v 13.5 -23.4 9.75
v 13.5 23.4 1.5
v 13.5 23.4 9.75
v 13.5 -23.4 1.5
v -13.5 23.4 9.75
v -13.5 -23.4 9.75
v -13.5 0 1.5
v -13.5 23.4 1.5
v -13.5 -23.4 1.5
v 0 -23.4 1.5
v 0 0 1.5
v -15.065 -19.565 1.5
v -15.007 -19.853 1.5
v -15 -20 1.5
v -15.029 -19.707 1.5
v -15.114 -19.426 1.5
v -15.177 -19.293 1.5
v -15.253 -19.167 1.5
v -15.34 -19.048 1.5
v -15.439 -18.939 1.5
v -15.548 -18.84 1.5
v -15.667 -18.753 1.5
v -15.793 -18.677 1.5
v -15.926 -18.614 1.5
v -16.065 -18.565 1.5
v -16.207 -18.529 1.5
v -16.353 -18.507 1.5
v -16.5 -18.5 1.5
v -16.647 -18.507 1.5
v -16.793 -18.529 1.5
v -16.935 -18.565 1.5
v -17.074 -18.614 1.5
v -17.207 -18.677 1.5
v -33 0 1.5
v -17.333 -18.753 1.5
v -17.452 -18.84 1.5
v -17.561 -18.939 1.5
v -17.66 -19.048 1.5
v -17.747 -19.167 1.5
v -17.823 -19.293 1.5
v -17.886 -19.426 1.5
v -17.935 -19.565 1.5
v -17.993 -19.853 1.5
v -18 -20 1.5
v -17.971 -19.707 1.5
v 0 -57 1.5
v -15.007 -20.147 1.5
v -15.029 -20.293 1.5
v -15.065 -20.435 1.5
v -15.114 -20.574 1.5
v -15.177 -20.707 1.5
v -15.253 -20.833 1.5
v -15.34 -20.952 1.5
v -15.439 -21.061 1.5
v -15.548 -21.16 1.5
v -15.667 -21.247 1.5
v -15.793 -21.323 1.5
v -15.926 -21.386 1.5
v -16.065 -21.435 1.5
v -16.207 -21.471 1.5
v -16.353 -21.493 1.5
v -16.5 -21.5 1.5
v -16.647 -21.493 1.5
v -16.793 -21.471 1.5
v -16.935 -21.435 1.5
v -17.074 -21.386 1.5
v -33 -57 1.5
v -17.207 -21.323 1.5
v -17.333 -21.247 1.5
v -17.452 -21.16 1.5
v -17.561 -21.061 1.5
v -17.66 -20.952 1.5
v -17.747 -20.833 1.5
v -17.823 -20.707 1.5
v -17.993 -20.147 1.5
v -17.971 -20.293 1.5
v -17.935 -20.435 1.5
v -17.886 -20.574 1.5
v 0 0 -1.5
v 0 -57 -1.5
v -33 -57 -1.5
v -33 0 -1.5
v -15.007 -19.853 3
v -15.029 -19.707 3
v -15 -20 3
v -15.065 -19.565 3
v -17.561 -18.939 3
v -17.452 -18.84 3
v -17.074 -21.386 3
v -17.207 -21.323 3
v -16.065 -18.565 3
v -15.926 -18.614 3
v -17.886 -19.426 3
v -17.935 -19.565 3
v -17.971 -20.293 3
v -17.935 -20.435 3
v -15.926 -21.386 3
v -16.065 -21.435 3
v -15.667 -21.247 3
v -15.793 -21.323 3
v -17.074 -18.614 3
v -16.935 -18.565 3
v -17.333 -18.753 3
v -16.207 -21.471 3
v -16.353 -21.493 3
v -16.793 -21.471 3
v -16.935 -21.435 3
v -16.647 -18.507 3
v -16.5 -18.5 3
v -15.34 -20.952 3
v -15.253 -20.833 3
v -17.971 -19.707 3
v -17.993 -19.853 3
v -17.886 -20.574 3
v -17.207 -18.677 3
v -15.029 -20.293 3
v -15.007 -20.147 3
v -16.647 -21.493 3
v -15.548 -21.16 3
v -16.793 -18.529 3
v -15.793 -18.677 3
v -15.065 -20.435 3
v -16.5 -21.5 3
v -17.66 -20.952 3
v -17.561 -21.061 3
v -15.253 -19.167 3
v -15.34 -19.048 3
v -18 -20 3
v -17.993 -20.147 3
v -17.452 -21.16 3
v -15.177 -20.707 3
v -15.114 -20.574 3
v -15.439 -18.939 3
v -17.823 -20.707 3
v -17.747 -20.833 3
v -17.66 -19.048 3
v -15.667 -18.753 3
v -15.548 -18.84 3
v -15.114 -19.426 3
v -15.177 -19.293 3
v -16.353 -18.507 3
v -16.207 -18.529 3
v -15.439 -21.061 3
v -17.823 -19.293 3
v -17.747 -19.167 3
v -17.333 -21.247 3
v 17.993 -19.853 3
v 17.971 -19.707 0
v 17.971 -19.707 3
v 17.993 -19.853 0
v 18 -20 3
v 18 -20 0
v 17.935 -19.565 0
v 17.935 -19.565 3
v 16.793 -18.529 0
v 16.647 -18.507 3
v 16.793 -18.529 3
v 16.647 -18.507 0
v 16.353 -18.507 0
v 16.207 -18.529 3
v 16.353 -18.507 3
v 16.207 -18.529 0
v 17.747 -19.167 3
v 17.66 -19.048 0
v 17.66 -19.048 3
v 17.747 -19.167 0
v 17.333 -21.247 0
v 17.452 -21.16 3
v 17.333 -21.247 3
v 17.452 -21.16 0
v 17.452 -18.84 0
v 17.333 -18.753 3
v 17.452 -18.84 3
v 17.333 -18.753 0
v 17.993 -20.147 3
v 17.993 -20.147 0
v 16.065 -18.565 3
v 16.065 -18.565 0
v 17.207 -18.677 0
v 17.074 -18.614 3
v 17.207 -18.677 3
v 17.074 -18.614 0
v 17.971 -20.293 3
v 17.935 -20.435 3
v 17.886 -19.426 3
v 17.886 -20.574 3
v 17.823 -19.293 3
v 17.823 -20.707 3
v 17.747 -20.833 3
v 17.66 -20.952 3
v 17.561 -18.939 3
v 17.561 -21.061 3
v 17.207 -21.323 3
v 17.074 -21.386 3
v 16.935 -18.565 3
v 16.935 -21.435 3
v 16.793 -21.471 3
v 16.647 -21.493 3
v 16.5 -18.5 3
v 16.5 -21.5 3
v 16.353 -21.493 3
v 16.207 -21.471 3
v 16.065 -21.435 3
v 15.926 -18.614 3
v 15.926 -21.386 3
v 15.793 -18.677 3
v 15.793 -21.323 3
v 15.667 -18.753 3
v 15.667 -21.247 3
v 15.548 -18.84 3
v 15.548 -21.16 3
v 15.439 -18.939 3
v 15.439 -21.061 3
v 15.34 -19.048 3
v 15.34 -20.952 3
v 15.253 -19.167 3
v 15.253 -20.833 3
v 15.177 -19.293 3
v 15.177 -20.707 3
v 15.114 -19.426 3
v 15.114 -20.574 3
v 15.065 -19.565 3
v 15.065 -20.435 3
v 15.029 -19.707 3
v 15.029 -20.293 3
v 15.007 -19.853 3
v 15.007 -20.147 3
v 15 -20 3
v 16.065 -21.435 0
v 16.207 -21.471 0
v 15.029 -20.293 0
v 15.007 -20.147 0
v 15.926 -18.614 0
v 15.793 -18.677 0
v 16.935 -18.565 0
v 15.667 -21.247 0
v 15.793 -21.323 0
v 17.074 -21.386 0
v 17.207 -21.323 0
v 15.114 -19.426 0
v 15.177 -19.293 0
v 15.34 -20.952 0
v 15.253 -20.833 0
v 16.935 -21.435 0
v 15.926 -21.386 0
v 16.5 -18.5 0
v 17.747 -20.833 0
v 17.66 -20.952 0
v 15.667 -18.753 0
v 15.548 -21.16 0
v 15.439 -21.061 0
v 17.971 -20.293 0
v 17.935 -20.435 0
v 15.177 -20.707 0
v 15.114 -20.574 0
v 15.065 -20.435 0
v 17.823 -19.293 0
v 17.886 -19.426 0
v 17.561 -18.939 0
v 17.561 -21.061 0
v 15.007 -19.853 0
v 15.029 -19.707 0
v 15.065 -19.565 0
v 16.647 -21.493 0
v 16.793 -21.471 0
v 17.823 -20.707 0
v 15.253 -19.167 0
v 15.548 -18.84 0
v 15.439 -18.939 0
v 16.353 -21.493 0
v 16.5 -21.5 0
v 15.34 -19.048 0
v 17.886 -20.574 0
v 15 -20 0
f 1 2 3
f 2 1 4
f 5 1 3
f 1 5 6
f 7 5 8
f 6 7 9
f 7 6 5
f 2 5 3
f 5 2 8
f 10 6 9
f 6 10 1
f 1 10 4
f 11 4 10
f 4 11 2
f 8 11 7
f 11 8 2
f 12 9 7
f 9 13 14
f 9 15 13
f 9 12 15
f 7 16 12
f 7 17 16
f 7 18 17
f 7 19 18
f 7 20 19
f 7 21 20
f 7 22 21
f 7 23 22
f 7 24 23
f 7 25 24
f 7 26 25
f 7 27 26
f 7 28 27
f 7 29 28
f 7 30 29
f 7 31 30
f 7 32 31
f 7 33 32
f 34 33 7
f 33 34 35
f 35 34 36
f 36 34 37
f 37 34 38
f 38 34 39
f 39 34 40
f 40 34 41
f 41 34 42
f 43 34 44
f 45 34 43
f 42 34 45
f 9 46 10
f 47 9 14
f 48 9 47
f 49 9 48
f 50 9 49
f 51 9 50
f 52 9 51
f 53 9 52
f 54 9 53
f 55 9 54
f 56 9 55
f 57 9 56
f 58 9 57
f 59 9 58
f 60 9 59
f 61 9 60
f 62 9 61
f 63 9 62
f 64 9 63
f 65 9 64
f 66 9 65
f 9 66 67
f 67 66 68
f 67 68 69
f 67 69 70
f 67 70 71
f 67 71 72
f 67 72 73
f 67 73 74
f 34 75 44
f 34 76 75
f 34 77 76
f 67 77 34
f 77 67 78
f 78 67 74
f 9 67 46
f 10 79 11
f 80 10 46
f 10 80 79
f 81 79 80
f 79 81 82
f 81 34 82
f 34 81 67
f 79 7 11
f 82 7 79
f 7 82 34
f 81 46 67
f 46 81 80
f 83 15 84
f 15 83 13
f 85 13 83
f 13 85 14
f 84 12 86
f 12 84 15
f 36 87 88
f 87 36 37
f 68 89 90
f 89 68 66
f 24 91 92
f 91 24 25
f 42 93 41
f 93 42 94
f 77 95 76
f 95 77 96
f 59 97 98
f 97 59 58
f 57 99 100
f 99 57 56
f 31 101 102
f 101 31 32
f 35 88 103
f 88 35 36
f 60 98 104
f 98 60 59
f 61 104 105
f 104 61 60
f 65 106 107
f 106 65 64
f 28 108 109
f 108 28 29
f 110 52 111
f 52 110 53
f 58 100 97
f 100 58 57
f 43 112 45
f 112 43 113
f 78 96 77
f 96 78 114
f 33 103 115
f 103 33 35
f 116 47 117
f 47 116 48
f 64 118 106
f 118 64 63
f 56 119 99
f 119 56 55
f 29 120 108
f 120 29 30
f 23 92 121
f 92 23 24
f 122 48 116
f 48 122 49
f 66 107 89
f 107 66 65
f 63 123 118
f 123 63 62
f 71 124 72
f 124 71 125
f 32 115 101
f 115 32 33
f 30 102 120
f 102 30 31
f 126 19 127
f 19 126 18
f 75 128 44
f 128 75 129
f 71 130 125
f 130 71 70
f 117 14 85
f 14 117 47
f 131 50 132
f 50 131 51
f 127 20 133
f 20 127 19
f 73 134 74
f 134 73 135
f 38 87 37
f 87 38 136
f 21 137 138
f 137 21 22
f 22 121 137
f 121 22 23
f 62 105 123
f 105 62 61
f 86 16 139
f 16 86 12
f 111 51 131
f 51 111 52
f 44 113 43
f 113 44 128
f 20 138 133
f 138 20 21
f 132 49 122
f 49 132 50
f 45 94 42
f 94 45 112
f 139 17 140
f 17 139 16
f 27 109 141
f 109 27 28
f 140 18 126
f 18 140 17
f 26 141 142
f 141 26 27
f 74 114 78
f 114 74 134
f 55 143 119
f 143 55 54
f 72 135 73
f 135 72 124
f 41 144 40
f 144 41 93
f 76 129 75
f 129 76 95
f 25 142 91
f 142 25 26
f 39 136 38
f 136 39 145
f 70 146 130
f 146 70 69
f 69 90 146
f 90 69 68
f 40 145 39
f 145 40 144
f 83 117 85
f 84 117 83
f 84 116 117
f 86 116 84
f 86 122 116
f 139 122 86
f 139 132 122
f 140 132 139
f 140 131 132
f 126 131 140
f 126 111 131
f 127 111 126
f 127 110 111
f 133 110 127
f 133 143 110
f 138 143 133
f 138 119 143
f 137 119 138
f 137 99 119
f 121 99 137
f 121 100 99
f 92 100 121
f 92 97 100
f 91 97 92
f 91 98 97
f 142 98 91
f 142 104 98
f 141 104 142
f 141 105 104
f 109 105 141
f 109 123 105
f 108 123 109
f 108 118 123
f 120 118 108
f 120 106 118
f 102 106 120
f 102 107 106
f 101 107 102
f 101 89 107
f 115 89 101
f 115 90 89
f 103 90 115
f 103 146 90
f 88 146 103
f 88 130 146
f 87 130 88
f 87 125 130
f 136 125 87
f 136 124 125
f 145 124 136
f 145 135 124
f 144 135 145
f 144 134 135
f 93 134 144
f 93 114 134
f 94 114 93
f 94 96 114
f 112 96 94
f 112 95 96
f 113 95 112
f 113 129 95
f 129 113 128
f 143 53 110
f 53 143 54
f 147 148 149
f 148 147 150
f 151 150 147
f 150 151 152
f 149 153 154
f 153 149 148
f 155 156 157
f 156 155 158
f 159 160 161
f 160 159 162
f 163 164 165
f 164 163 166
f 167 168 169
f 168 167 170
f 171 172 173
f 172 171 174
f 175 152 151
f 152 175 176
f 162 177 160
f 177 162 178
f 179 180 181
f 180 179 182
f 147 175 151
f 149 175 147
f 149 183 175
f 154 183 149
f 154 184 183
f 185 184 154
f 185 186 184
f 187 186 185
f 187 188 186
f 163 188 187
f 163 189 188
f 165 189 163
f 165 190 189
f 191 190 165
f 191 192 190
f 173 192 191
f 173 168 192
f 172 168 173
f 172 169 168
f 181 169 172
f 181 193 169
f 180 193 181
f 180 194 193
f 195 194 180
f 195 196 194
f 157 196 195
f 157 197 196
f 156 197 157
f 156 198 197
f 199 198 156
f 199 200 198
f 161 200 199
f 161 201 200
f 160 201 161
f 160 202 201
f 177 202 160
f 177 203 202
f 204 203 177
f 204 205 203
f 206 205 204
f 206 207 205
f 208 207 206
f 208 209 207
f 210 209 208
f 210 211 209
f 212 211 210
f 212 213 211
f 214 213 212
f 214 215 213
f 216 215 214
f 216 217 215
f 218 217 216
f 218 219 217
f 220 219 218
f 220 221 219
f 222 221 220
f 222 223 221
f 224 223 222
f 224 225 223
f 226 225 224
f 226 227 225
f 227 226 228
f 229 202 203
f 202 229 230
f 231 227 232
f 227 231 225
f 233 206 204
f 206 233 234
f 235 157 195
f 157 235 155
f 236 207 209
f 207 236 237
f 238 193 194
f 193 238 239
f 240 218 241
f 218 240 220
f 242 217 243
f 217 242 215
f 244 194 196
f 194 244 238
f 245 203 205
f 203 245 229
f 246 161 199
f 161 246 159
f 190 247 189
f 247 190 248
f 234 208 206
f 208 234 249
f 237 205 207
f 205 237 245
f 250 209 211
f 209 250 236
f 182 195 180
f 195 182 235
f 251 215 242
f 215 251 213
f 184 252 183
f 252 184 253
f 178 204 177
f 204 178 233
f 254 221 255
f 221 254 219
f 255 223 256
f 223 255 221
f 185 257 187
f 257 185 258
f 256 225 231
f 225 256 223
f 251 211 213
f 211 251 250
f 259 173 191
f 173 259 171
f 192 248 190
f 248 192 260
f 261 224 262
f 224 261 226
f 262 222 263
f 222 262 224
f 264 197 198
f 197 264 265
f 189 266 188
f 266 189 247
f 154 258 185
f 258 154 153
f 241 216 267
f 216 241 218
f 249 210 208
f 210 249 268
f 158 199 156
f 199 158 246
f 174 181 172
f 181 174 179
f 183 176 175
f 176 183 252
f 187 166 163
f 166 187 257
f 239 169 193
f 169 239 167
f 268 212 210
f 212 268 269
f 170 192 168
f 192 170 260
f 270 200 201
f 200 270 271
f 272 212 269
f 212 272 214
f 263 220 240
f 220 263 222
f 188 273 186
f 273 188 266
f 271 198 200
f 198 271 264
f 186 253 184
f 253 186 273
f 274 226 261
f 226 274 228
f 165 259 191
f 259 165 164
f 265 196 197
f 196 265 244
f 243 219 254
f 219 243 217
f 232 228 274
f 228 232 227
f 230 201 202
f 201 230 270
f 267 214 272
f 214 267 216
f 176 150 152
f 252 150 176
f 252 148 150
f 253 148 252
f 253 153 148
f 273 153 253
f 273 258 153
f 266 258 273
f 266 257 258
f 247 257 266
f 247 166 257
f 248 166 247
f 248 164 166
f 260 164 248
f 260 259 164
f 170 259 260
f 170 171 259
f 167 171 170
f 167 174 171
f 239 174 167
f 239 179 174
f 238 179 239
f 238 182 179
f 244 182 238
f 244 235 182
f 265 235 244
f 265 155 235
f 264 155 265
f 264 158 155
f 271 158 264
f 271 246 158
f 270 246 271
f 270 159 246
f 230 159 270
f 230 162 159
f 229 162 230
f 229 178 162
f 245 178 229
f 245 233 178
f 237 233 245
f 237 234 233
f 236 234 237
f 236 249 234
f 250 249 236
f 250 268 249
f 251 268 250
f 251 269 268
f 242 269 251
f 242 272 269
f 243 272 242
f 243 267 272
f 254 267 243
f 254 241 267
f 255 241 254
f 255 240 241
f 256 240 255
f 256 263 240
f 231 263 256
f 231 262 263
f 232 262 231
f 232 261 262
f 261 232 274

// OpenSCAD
$fn = 64;

module iec_inlet() {
    // Main body
    difference() {
        cube([27, 46.8, 16.5], center = true);
        translate([-13.5, -23.4, -16.5])
            cube([27, 46.8, 16.5]);
    }
    
    // Flange
    translate([-16.5, -28.5, -1.5])
        cube([33, 57, 3], center = true);
    
    // Mounting holes
    translate([-16.5, -20, 0])
        cylinder(h = 3, d = 3, center = true);
    translate([16.5, -20, 0])
        cylinder(h = 3, d = 3, center = true);
}

translate([0, 0, 1.5])
    iec_inlet();
